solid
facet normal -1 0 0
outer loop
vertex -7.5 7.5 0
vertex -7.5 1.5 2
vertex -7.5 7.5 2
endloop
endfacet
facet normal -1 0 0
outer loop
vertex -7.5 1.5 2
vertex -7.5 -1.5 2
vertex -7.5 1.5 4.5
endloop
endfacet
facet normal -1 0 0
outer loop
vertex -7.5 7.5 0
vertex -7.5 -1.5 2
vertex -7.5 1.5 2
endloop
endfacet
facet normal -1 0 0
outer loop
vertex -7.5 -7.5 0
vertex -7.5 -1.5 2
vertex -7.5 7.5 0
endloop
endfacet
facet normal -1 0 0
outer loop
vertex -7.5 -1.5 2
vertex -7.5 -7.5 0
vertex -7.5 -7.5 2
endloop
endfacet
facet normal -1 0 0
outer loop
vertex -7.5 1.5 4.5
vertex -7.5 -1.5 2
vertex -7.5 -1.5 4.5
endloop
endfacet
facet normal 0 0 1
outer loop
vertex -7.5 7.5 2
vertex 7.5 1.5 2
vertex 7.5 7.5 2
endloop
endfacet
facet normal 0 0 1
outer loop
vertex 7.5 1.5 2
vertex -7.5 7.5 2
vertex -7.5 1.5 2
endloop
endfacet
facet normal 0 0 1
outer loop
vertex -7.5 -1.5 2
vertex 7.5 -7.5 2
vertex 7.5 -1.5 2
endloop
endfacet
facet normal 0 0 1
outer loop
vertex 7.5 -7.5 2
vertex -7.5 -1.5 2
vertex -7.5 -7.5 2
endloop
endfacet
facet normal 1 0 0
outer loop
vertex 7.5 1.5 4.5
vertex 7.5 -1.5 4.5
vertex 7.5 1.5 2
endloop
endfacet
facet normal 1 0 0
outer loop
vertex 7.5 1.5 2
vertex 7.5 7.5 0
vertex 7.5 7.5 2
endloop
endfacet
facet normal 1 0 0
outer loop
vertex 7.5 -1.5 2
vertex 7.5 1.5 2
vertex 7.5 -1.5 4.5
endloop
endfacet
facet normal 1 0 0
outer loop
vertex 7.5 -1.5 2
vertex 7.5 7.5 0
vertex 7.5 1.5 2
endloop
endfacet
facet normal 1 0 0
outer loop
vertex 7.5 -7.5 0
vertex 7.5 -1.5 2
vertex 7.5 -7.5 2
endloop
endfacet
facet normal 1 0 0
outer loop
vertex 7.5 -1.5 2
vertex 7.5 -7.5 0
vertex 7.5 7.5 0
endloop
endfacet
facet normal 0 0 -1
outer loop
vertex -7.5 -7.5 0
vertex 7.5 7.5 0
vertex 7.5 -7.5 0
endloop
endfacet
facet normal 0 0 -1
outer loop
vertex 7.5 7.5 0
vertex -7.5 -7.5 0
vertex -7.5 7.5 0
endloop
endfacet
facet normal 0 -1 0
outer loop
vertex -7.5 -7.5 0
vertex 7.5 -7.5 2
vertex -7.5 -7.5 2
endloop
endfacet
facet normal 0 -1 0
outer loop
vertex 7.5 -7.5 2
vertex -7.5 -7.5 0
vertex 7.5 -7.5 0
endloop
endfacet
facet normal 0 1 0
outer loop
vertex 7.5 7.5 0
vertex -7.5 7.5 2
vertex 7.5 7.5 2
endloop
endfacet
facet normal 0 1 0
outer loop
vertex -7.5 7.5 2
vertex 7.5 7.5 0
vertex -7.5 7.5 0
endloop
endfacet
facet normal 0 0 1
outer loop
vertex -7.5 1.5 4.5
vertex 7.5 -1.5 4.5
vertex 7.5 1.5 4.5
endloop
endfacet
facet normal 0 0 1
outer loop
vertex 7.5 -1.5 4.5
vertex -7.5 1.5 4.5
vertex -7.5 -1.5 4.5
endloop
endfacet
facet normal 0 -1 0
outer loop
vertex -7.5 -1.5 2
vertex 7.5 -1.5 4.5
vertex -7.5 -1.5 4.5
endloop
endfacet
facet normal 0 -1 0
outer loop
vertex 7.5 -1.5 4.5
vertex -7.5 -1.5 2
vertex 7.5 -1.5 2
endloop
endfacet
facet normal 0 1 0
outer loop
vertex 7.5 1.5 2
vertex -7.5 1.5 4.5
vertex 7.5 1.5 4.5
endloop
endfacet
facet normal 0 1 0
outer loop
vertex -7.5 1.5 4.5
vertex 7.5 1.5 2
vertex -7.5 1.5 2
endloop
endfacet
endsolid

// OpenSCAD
// file: cubeX.scad
//
// Simple and fast corned cube!
// Anaximandro de Godinho.
//

module cubeX( size, radius=1, rounded=true, center=false )
{
	l = len( size );
	if( l == undef )
		_cubeX( size, size, size, radius, rounded, center );
	else
		_cubeX( size[0], size[1], size[2], radius, rounded, center );
}

module _cubeX( x, y, z, r, rounded, center )
{
	if( rounded )
		if( center )
			translate( [-x/2, -y/2, -z/2] )
			__cubeX( x, y, z, r );
		else
			__cubeX( x, y, z, r );
	else
		cube( [x, y, z], center );
}

module __cubeX(	x, y, z, r )
{
	//TODO: discount r.
	rC = r;
	hull()
	{
		translate( [rC, rC, rC] )
			sphere( r );
		translate( [rC, y-rC, rC] )
			sphere( r );
		translate( [rC, rC, z-rC] )
			sphere( r );
		translate( [rC, y-rC, z-rC] )
			sphere( r );

		translate( [x-rC, rC, rC] )
			sphere( r );
		translate( [x-rC, y-rC, rC] )
			sphere( r );
		translate( [x-rC, rC, z-rC] )
			sphere( r );
		translate( [x-rC, y-rC, z-rC] )
			sphere( r );
	}
}
// main file
include <cubeX.scad>

tile_dim = 15;
tile_depth = 2;

ridge_depth = 2.5;
ridge_width = 3;

// Tile face
translate([-(tile_dim / 2), -(tile_dim / 2)])
    cube(size = [tile_dim, , tile_dim, tile_depth]);
    
translate([-(tile_dim / 2), -(ridge_width /2), tile_depth])
    cube(size = [tile_dim, ridge_width, ridge_depth]);
    
